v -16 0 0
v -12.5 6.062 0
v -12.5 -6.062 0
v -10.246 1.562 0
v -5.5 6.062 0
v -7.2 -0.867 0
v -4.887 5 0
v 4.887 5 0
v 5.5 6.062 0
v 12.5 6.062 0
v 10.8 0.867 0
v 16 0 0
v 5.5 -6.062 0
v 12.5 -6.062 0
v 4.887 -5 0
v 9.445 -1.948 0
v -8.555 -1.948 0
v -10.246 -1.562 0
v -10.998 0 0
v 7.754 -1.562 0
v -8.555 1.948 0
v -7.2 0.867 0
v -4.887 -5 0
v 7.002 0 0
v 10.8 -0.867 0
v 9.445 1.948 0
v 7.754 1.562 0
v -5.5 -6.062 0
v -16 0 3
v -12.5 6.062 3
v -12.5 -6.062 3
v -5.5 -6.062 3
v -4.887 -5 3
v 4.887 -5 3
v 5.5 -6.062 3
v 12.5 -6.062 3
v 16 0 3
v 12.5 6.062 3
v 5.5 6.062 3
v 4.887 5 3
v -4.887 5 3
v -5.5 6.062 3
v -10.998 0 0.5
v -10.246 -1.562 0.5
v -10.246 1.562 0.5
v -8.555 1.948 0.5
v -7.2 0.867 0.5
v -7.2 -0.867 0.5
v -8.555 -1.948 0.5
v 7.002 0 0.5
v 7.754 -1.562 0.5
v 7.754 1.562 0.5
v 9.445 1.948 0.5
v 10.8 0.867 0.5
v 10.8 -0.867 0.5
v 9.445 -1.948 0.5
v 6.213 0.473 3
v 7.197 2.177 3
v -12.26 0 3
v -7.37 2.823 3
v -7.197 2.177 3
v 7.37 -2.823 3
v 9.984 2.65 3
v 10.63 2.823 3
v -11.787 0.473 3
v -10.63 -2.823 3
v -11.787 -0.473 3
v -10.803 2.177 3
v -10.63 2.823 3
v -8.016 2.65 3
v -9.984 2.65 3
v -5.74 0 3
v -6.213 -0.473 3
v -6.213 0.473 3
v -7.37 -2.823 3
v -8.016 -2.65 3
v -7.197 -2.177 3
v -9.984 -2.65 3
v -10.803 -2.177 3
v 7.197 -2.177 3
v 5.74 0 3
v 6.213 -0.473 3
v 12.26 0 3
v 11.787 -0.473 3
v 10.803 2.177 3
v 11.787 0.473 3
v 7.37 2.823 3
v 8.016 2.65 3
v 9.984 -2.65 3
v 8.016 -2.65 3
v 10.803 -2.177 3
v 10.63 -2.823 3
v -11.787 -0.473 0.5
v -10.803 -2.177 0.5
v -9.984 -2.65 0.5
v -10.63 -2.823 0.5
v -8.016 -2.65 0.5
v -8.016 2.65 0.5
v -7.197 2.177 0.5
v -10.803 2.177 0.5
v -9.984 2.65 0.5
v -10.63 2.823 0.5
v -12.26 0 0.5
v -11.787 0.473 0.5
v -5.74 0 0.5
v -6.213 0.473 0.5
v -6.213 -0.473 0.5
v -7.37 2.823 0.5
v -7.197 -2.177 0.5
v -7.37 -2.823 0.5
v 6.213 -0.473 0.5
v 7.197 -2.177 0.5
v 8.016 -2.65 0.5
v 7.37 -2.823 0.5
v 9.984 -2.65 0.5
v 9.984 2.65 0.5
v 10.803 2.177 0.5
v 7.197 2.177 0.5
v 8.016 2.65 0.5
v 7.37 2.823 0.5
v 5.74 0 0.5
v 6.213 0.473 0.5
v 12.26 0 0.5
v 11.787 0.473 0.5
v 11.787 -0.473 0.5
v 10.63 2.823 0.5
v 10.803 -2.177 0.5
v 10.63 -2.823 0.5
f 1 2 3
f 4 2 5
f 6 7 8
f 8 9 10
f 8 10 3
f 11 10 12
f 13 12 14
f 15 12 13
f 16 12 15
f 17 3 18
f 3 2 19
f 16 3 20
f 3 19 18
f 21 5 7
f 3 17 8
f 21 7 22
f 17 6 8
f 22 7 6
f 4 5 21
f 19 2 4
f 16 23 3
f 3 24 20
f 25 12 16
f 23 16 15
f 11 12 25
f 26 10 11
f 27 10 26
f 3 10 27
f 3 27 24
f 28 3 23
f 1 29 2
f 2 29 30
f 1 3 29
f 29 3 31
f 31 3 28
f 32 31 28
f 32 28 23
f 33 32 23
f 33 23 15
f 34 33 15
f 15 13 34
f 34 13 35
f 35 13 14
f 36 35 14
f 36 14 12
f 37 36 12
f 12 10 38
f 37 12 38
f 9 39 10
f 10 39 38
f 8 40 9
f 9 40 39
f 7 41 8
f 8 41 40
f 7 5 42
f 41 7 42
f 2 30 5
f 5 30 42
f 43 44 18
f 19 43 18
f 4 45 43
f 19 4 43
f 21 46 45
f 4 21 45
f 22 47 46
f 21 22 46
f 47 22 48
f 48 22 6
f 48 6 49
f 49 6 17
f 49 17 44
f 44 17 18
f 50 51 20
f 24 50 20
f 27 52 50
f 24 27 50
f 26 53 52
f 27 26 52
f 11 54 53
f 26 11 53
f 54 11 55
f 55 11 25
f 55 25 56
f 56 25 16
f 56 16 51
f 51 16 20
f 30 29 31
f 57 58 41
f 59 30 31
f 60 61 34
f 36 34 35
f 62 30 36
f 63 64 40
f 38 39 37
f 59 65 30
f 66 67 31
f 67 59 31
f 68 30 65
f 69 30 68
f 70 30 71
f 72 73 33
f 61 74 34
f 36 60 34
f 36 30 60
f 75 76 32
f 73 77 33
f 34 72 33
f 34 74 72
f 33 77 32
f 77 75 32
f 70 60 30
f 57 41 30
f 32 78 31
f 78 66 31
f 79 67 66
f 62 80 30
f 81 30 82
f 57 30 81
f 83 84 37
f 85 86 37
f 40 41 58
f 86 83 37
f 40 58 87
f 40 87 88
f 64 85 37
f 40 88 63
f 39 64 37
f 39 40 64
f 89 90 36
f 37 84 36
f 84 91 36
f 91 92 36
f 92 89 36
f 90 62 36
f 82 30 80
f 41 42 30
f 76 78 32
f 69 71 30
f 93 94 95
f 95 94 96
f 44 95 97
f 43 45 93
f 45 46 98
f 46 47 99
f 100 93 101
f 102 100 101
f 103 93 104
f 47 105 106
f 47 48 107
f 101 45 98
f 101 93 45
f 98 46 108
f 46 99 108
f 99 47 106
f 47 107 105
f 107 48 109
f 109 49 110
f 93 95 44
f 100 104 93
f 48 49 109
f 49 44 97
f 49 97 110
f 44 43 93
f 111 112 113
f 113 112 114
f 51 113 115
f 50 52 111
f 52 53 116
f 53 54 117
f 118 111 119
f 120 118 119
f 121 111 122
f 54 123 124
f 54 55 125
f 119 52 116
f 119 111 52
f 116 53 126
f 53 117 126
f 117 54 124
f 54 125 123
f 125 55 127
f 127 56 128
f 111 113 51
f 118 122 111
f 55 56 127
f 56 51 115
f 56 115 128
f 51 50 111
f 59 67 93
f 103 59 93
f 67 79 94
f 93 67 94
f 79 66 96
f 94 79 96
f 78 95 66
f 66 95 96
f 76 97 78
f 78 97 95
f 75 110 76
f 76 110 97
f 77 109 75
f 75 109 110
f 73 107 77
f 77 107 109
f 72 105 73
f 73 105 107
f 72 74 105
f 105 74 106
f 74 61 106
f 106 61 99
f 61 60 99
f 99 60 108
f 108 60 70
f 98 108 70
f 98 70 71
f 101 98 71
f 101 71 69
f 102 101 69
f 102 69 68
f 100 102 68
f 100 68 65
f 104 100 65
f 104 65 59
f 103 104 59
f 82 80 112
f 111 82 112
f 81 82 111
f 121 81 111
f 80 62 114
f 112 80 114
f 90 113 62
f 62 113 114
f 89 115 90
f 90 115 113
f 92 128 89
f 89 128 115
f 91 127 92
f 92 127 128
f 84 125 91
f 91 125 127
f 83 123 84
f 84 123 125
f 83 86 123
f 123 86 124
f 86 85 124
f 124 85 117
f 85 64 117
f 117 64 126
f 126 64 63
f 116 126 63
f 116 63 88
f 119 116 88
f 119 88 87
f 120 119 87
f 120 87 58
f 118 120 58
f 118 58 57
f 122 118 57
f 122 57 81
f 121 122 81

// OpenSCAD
// file: prusafunc.scad
// miPrinter
// https://github.com/3DprintFIT/miPrinter
// Functions used in many files from Prusa Mendel
// GNU GPL v3
// Josef Průša
// nophead

module nut(d,h,horizontal=true) {
	cornerdiameter =  (d / 2) / cos (180 / 6);
	cylinder(h = h, r = cornerdiameter, $fn = 6);
	if(horizontal) {
		for(i = [1:6]){
			rotate([0,0,60*i]) translate([-cornerdiameter-0.2,0,0]) rotate([0,0,-45]) cube(size = [2,2,h]);
		}
	}
}

// Based on nophead research
module polyhole(d,h) {
	n = max(round(2 * d),3);
	rotate([0,0,180])
		cylinder(h = h, r = (d / 2) / cos (180 / n), $fn = n);
}

module roundcorner(diameter) {
	difference() {
		cube(size = [diameter,diameter,99], center = false);
		translate(v = [diameter, diameter, 0]) cylinder(h = 100, r=diameter, center=true);
	}
}
// file: configuration.scad
// miPrinter
// https://github.com/3DprintFIT/miPrinter
// Configuration
// GNU GPL v3
// Miro Hrončok

print = 200;
wall = 5;
rod = 8;
minirod = 3;
motorw = 43;
motorh = 47;
inf = 500;
bearingd = 7+1; // including 1 washer
bearingr = 11+0.5; // including clearance
layer = 0.3;
bigwasher = 30;

// RAIL: http://eshop.prodance.cz/fotocache/add/620612_1.jpg
rail = 10; // outside
raildepth = 15;

// Prusa parts
use <prusafunc.scad>;

linear = true;
lme8uu=false;
m8_diameter = 9;
m8_nut_diameter = 14.1;
m4_nut_diameter = 9;
m3_diameter = 3.6;
m3_nut_diameter = 5.3;
thin_wall = 3;
xend_width = 32;
// main file
// miPrinter
// https://github.com/3DprintFIT/miPrinter
// Belt clamp nut holder
// GNU GPL v3
// Josef Průša

include <configuration.scad>

module beltclamp(){
difference(){
	union(0){
translate(v = [0,0,1.5]) cube([18,10,3], center=true);
		translate(v = [-9, 0, 0]) cylinder(r=7,h=3, $fn=6);
		translate(v = [9, 0, 0]) cylinder(r=7,h=3, $fn=6);
}

translate(v = [9,0, 0.5]) nut(m3_nut_diameter,9);
translate(v = [-9,0, 0.5]) nut(m3_nut_diameter,9);
translate(v = [-9, 0, -1])polyhole(m3_diameter, 12);
translate(v = [9, 0, -1]) polyhole(m3_diameter, 12);
}
}
beltclamp();
